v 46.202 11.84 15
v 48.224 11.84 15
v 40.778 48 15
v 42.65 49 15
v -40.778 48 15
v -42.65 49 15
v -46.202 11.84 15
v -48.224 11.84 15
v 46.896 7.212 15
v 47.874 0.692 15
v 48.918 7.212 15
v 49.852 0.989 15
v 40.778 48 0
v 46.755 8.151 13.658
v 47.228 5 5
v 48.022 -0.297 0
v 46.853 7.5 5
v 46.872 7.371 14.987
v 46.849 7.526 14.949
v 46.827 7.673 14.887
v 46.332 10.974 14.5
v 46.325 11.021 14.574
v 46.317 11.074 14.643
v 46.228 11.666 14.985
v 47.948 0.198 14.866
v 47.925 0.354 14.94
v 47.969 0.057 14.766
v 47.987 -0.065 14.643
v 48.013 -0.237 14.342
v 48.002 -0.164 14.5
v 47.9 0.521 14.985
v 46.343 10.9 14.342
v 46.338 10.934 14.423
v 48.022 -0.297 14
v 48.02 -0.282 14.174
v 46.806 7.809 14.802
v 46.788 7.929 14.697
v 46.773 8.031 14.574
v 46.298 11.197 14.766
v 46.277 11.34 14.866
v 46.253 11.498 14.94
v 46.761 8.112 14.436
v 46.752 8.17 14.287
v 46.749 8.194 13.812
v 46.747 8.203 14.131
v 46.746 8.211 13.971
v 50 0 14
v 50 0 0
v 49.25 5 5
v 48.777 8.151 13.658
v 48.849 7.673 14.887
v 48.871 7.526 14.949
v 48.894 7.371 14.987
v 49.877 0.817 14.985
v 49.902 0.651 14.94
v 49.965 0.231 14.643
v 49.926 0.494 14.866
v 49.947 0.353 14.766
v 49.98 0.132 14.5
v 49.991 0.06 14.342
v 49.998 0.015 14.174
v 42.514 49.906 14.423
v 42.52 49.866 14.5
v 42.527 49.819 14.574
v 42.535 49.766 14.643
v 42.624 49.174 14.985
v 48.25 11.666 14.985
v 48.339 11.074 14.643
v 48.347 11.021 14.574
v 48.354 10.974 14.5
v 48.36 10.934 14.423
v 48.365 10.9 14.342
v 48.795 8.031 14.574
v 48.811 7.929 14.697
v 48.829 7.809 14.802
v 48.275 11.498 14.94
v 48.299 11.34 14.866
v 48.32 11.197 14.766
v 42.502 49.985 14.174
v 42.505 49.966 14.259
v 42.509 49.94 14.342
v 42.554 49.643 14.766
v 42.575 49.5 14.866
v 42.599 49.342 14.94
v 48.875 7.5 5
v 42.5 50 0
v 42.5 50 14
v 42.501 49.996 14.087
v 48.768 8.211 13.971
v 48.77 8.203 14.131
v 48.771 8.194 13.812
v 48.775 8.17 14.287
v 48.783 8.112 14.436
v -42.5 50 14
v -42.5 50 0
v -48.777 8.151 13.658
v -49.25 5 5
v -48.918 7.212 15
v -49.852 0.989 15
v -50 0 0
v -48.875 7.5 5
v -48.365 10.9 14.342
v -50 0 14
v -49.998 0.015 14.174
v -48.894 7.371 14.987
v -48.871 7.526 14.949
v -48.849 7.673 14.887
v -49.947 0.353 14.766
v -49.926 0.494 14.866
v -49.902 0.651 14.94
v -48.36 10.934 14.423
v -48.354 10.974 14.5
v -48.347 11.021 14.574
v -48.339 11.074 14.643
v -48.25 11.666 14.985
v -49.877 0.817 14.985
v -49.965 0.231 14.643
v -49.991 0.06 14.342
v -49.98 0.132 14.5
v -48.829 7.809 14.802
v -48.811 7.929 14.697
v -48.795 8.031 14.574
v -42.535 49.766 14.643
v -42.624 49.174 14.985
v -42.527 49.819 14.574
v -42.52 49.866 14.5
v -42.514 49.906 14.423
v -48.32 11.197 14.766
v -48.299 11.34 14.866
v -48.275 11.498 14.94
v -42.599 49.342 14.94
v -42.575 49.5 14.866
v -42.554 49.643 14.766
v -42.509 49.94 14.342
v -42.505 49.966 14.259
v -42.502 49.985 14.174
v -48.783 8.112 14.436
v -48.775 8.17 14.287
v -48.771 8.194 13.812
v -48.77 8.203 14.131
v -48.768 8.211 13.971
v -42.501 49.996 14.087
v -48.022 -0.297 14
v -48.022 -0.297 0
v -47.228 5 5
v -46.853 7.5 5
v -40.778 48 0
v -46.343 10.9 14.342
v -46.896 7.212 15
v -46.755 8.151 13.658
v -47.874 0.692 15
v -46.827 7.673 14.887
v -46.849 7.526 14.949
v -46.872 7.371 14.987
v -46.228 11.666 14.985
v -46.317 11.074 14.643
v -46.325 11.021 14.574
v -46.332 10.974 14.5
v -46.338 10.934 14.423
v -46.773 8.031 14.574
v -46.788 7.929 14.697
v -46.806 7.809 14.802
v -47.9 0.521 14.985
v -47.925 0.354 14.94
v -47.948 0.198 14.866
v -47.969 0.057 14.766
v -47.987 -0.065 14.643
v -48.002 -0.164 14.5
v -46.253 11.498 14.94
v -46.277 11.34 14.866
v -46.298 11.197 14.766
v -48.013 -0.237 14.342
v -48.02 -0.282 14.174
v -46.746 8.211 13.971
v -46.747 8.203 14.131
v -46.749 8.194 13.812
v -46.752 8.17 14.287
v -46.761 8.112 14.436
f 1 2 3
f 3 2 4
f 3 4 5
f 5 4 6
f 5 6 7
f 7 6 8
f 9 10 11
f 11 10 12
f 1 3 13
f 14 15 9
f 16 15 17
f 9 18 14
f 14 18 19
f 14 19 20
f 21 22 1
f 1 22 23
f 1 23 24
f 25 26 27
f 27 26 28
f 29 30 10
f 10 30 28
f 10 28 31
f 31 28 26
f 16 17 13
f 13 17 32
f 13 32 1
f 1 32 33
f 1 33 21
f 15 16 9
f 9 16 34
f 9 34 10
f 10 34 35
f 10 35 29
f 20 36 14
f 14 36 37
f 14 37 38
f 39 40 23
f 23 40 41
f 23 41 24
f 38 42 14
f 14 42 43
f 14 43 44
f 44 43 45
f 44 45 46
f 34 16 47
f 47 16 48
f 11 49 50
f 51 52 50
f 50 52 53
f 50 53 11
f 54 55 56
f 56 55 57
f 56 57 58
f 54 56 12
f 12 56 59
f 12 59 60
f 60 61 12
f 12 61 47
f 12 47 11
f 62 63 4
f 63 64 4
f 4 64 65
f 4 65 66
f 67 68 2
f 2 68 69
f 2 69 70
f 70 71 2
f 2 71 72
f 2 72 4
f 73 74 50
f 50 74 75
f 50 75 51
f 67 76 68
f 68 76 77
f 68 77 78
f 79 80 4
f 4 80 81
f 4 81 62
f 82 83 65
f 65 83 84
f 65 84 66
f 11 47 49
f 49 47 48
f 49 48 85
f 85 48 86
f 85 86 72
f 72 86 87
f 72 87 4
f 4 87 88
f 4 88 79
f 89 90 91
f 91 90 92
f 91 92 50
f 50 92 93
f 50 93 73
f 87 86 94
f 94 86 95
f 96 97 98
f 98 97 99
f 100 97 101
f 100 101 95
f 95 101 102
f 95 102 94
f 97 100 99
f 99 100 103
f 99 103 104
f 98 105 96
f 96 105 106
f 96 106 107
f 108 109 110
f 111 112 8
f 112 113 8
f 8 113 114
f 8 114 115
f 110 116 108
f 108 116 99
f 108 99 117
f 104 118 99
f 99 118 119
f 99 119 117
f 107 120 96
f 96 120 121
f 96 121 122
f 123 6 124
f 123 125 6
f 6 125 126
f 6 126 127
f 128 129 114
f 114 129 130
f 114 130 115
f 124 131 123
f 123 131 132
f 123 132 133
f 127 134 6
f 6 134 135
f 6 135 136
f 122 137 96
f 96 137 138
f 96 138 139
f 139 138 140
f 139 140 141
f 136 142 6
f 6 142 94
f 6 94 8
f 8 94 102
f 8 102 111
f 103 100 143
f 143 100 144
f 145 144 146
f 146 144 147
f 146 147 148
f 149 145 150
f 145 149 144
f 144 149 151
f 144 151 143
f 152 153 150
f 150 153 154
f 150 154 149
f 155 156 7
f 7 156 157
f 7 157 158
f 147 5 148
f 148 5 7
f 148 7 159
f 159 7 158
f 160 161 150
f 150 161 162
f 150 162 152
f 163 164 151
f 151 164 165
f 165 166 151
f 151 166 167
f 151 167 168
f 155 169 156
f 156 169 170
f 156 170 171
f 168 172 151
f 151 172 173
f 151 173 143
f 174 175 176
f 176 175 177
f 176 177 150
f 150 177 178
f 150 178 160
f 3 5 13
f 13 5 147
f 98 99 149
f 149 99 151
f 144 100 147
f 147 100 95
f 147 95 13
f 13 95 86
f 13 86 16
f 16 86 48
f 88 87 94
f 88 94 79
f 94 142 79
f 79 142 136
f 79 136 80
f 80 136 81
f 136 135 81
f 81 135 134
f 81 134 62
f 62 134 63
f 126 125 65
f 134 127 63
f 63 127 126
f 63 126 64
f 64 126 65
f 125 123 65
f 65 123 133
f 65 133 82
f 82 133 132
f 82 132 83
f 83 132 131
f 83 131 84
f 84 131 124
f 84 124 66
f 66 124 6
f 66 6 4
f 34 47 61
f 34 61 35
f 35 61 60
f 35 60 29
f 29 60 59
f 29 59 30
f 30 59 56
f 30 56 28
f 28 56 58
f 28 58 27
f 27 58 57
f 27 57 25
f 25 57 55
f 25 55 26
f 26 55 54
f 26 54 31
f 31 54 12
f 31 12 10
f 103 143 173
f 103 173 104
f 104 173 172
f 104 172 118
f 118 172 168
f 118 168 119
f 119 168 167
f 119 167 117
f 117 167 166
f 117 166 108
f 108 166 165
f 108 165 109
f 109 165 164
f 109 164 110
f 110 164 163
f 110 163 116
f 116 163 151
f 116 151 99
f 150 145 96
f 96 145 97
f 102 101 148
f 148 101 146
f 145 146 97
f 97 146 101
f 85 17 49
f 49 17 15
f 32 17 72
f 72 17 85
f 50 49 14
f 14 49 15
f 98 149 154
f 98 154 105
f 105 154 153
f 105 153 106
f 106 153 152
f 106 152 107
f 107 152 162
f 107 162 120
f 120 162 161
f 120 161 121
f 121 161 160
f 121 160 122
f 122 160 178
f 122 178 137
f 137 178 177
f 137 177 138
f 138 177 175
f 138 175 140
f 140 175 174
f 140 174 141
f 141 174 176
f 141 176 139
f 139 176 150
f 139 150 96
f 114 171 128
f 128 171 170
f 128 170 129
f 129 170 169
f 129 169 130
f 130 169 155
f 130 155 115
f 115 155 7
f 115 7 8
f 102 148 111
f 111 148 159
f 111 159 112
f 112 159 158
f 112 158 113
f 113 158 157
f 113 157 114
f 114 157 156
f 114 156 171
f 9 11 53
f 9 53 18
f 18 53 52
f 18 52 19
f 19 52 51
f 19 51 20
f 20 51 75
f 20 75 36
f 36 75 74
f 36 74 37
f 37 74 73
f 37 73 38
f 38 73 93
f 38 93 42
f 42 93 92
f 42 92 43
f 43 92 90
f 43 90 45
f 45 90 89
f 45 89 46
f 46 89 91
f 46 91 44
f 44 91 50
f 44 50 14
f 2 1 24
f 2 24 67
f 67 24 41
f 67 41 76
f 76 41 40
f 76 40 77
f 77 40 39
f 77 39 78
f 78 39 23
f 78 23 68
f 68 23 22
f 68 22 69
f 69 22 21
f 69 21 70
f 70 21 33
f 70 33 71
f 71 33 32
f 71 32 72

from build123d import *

# Parameters (mm, degrees)
LINEAR_AUSTRAGEN_D_NN1_DEPTH         = 15
VERRUNDUNG1_R                        = 1
SCHNITT_LINEAR_AUSTRAGEN2_DEPTH      = 73.284161474
SCHNITT_LINEAR_AUSTRAGEN2_DEPTH_BACK = 73.284161474
VERRUNDUNG2_R                        = 1


with BuildPart() as part:
    # Skizze1 → Linear-Austragen-Dünn1 (new body)
    with BuildSketch(Plane.XY):
        Polygon((-50, 0), (-42.5, 50), (42.5, 50), (50, 0), (48.022127294, -0.296680906), (40.777625158, 48), (-40.777625158, 48), (-48.022127294, -0.296680906), align=None)
    extrude(amount=LINEAR_AUSTRAGEN_D_NN1_DEPTH)

    # Verrundung1
    verrundung1_edges = [part.edges().sort_by_distance(p)[0] for p in [
        (0, 50, 15),
        (-49.011063647, -0.148340453, 15),
        (49.011063647, -0.148340453, 15),
    ]]
    fillet(verrundung1_edges, radius=VERRUNDUNG1_R)

    # Skizze2 → Schnitt-Linear austragen2 (cut, two sides: drawn at the far end of the back side and taken through both)
    with BuildSketch(Plane(origin=(0, 0, 0), x_dir=(0, 0, -1), z_dir=(1, 0, 0)).offset(-SCHNITT_LINEAR_AUSTRAGEN2_DEPTH_BACK)):
        Polygon((-15, 11.139702343), (-5, 7.5), (-5, 5), (-15, 8.639702343), align=None)
    extrude(amount=SCHNITT_LINEAR_AUSTRAGEN2_DEPTH + SCHNITT_LINEAR_AUSTRAGEN2_DEPTH_BACK, mode=Mode.SUBTRACT)

    # Verrundung2
    verrundung2_edges = [part.edges().sort_by_distance(p)[0] for p in [
        (-47.692857228, 8.639702343, 15),
        (47.692857228, 8.639702343, 15),
        (47.317857228, 11.139702343, 15),
        (-47.317857228, 11.139702343, 15),
    ]]
    fillet(verrundung2_edges, radius=VERRUNDUNG2_R)


solid = part.part
